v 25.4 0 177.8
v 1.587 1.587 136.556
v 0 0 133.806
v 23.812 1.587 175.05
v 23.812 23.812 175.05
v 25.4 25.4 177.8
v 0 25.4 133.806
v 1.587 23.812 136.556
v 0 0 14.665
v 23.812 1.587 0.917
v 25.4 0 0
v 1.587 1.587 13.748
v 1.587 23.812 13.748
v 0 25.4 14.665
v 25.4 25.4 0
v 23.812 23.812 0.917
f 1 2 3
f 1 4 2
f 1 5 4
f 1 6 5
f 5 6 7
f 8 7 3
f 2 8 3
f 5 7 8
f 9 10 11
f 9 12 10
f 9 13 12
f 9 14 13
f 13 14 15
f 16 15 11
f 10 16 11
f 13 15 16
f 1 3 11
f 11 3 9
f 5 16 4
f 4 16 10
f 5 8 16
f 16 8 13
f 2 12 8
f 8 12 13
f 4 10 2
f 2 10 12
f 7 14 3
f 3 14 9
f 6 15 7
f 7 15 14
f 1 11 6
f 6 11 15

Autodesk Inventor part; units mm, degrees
ref_plane "YZ Plane" through (0, 0, 0) normal (1, 0, 0) x (0, 1, 0)
ref_plane "XZ Plane" through (0, 0, 0) normal (0, 1, 0) x (-1, 0, 0)
ref_plane "XY Plane" through (0, 0, 0) normal (0, 0, 1) x (1, 0, 0)
sketch "Sketch1" plane through (0, 0, 0) normal (0, 0, 1) x (1, 0, 0)
  line L0 (0, 0) -> (25.4, 0)
  line L1 (25.4, 0) -> (25.4, 25.4)
  line L2 (25.4, 25.4) -> (0, 25.4)
  line L3 (0, 25.4) -> (0, 0)
  dimension "d0" = 25.4
  dimension "d1" = 25.4
extrude "Extrusion1" add sketch "Sketch1" along normal blind 177.8
shell "Shell1" thickness 1.5875 removed faces 2 at (8.4667, 16.9333, 0) at (8.4667, 16.9333, 177.8)
sketch "Sketch2" plane through (0, 25.4, 0) normal (0, 1, 0) x (1, 0, 0)
  line L0 (0, -177.8) -> (25.4, -177.8) projected
  line L1 (25.4, 0) -> (0, 0) projected
  line L2 (0, 0) -> (0, -177.8) projected
  line L3 (0, 0) -> (0, -14.6647)
  line L4 (25.4, 0) -> (0, -14.6647)
  line L5 (0, 0) -> (25.4, 0)
  line L6 (0, -133.8059) -> (0, -177.8)
  line L7 (0, -177.8) -> (25.4, -177.8)
  line L8 (0, -133.8059) -> (25.4, -177.8)
  dimension "d5" = 60
  dimension "d6" = 30
extrude "Extrusion2" cut sketch "Sketch2" against normal through all
properties part number "Frame_FrontAngle" material "Aluminum-6061"
